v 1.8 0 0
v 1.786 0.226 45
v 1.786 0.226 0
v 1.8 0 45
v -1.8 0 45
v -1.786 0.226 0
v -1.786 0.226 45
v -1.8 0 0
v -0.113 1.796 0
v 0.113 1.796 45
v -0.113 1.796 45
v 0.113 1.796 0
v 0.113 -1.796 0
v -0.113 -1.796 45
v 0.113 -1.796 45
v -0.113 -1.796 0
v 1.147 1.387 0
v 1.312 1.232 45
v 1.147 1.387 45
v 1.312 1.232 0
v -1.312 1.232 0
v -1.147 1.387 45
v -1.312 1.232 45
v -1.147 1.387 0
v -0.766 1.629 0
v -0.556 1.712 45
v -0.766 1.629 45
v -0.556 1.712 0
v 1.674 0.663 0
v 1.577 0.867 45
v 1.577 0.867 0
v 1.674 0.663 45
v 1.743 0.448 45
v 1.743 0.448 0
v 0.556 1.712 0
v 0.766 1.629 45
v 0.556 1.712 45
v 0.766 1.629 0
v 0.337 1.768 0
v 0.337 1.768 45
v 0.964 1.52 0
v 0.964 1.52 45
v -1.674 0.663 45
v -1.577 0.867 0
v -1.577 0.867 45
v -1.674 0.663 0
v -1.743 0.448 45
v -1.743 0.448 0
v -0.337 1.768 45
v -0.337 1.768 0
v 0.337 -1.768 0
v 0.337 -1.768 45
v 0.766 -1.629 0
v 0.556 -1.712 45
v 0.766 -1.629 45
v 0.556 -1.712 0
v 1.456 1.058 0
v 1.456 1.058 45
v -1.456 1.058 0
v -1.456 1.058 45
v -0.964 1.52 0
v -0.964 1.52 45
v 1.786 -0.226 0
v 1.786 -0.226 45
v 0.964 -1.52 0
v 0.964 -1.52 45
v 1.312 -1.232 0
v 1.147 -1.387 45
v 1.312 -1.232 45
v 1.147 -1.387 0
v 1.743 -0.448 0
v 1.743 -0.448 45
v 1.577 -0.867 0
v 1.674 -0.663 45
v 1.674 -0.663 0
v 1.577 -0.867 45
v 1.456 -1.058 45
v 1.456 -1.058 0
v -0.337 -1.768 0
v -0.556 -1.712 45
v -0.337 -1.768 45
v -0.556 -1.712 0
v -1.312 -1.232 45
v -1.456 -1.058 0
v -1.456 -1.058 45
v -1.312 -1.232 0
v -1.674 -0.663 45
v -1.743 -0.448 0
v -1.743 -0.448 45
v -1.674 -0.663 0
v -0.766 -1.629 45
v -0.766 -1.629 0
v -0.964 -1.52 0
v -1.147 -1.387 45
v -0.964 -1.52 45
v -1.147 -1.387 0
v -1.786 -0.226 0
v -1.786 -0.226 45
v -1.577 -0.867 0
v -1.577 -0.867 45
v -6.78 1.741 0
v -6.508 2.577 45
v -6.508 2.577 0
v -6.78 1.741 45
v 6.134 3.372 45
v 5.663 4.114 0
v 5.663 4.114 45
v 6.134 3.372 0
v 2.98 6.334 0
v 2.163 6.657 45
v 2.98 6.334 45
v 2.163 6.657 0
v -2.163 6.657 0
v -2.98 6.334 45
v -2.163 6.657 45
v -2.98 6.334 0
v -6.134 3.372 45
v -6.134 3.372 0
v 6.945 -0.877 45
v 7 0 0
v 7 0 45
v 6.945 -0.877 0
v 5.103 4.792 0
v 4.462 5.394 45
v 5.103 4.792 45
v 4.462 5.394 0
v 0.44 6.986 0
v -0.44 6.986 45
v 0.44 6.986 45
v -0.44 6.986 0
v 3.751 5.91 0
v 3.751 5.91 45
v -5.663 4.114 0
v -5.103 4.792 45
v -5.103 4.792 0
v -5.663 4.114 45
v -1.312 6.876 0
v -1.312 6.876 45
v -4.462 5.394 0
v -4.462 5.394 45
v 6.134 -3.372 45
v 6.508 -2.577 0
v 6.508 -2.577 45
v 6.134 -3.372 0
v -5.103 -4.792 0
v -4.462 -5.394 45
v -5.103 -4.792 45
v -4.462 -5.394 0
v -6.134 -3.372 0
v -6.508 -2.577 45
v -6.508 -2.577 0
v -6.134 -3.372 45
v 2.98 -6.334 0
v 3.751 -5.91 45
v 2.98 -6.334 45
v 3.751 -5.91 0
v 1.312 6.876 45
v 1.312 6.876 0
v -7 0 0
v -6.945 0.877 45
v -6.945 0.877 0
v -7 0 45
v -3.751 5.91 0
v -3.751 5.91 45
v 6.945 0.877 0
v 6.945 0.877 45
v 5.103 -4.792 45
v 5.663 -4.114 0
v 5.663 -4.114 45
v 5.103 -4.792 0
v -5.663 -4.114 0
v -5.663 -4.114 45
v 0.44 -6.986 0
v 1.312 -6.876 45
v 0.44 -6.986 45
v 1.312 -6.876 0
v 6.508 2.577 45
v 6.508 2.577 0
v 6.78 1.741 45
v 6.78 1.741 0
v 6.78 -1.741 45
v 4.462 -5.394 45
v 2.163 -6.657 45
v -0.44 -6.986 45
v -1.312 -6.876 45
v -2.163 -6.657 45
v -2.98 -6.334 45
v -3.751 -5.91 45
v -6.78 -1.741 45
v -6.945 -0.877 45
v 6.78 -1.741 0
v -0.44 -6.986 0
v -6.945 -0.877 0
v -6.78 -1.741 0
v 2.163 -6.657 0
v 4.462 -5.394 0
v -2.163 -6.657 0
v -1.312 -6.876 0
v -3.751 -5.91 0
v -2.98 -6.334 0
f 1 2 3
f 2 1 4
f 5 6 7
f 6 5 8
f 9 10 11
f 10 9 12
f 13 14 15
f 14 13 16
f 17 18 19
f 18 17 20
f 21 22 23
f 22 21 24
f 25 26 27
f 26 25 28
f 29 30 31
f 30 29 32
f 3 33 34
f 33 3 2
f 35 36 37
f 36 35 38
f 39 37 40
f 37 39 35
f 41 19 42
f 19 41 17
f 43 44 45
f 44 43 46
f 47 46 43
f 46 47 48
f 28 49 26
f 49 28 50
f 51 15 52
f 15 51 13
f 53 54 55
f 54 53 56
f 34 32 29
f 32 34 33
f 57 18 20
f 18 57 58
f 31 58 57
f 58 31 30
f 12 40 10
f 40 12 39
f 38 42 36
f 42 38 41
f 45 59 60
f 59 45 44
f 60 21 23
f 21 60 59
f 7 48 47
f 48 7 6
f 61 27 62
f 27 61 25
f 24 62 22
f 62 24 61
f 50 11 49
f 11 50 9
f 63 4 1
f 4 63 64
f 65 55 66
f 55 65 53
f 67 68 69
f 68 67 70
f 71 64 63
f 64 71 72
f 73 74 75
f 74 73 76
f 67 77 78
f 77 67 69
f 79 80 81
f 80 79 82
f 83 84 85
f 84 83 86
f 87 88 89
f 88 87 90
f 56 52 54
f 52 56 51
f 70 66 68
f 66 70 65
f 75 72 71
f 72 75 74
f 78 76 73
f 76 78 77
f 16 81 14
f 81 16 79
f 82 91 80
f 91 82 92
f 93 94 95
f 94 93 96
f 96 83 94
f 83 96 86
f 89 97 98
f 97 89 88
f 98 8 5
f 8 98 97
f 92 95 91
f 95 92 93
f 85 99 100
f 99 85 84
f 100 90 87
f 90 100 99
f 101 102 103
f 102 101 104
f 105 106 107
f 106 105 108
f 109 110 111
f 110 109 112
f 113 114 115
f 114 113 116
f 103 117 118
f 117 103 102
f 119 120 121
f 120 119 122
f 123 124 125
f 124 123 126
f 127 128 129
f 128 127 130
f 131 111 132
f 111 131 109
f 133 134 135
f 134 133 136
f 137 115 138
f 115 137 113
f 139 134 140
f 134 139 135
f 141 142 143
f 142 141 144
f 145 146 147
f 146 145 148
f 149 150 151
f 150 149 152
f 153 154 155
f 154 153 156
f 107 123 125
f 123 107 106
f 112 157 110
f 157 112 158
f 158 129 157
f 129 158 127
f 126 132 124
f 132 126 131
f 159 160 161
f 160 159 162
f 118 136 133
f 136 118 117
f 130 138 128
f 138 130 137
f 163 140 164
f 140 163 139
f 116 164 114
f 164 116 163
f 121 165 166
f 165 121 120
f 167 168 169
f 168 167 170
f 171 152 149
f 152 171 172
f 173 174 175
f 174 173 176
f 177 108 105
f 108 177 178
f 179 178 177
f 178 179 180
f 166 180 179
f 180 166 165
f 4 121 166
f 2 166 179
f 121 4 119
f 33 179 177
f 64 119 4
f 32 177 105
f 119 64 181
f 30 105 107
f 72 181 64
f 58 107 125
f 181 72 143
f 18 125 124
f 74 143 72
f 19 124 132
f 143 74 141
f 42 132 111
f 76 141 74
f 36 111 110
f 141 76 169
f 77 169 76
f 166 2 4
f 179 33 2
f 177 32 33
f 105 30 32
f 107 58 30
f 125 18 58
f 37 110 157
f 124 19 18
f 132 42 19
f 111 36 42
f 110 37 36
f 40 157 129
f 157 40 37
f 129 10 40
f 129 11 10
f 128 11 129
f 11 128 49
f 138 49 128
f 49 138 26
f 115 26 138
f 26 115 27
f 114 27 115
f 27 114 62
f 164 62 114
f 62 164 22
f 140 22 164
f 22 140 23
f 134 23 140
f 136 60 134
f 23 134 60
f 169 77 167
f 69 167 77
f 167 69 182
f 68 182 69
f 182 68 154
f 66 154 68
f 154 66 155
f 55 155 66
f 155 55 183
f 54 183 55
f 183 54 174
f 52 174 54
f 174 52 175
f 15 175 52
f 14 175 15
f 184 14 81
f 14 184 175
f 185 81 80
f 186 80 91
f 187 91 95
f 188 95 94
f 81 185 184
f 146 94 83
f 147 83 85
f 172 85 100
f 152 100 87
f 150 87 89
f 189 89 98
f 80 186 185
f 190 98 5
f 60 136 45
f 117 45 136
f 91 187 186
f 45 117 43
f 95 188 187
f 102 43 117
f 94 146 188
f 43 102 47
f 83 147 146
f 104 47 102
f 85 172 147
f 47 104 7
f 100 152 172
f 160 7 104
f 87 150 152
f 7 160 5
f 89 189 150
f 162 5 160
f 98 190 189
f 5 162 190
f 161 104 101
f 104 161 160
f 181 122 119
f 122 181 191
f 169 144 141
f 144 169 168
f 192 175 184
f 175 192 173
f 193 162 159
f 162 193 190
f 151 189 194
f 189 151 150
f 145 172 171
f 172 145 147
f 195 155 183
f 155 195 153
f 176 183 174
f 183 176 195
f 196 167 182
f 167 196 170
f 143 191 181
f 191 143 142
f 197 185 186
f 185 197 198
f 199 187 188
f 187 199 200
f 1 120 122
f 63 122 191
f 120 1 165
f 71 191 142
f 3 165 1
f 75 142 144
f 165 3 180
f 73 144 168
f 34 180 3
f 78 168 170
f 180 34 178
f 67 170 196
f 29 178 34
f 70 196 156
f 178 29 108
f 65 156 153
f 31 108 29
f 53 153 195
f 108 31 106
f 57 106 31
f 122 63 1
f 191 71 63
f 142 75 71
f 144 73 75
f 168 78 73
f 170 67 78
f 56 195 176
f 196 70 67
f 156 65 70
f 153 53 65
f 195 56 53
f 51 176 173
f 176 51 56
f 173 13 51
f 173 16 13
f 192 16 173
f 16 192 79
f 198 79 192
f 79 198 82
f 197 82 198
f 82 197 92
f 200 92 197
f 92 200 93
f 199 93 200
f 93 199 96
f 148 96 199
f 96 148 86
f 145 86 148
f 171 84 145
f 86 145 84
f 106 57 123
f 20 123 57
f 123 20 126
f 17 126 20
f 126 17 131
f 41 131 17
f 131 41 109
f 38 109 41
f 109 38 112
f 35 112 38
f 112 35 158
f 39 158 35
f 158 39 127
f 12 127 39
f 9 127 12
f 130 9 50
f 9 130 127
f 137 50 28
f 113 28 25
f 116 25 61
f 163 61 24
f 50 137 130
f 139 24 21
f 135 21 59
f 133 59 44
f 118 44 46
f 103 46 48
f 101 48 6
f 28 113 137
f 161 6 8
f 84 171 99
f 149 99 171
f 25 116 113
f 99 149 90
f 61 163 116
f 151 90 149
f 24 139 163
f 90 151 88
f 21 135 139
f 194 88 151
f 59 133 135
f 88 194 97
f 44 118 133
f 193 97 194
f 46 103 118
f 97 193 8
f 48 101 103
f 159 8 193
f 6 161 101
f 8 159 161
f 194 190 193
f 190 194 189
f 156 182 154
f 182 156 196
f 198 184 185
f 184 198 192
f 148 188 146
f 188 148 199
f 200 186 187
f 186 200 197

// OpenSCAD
$fn = 50;


difference() {
	union() {
		cylinder(h = 45, r = 7.0000000000);
	}
	union() {
		translate(v = [0, 0, -100]) {
			cylinder(h = 200, r = 1.8000000000);
		}
		translate(v = [0, 0, -100]) {
			cylinder(h = 200, r = 1.8000000000);
		}
	}
}
